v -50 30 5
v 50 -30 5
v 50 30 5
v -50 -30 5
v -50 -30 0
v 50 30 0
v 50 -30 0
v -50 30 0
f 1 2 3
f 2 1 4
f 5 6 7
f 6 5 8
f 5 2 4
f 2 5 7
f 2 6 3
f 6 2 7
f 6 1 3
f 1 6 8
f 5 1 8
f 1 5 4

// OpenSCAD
// Define dimensions for the rectangular plate
plate_length = 100;  // Length of the plate
plate_width = 60;    // Width of the plate
plate_thickness = 5; // Thickness of the plate

// Create the rectangular plate
module rectangular_plate() {
    cube([plate_length, plate_width, plate_thickness], center = true);
}

// Render the model
// Ensure the plate is flat and parallel to the ground
translate([0, 0, plate_thickness / 2]) {
    rectangular_plate();
}
